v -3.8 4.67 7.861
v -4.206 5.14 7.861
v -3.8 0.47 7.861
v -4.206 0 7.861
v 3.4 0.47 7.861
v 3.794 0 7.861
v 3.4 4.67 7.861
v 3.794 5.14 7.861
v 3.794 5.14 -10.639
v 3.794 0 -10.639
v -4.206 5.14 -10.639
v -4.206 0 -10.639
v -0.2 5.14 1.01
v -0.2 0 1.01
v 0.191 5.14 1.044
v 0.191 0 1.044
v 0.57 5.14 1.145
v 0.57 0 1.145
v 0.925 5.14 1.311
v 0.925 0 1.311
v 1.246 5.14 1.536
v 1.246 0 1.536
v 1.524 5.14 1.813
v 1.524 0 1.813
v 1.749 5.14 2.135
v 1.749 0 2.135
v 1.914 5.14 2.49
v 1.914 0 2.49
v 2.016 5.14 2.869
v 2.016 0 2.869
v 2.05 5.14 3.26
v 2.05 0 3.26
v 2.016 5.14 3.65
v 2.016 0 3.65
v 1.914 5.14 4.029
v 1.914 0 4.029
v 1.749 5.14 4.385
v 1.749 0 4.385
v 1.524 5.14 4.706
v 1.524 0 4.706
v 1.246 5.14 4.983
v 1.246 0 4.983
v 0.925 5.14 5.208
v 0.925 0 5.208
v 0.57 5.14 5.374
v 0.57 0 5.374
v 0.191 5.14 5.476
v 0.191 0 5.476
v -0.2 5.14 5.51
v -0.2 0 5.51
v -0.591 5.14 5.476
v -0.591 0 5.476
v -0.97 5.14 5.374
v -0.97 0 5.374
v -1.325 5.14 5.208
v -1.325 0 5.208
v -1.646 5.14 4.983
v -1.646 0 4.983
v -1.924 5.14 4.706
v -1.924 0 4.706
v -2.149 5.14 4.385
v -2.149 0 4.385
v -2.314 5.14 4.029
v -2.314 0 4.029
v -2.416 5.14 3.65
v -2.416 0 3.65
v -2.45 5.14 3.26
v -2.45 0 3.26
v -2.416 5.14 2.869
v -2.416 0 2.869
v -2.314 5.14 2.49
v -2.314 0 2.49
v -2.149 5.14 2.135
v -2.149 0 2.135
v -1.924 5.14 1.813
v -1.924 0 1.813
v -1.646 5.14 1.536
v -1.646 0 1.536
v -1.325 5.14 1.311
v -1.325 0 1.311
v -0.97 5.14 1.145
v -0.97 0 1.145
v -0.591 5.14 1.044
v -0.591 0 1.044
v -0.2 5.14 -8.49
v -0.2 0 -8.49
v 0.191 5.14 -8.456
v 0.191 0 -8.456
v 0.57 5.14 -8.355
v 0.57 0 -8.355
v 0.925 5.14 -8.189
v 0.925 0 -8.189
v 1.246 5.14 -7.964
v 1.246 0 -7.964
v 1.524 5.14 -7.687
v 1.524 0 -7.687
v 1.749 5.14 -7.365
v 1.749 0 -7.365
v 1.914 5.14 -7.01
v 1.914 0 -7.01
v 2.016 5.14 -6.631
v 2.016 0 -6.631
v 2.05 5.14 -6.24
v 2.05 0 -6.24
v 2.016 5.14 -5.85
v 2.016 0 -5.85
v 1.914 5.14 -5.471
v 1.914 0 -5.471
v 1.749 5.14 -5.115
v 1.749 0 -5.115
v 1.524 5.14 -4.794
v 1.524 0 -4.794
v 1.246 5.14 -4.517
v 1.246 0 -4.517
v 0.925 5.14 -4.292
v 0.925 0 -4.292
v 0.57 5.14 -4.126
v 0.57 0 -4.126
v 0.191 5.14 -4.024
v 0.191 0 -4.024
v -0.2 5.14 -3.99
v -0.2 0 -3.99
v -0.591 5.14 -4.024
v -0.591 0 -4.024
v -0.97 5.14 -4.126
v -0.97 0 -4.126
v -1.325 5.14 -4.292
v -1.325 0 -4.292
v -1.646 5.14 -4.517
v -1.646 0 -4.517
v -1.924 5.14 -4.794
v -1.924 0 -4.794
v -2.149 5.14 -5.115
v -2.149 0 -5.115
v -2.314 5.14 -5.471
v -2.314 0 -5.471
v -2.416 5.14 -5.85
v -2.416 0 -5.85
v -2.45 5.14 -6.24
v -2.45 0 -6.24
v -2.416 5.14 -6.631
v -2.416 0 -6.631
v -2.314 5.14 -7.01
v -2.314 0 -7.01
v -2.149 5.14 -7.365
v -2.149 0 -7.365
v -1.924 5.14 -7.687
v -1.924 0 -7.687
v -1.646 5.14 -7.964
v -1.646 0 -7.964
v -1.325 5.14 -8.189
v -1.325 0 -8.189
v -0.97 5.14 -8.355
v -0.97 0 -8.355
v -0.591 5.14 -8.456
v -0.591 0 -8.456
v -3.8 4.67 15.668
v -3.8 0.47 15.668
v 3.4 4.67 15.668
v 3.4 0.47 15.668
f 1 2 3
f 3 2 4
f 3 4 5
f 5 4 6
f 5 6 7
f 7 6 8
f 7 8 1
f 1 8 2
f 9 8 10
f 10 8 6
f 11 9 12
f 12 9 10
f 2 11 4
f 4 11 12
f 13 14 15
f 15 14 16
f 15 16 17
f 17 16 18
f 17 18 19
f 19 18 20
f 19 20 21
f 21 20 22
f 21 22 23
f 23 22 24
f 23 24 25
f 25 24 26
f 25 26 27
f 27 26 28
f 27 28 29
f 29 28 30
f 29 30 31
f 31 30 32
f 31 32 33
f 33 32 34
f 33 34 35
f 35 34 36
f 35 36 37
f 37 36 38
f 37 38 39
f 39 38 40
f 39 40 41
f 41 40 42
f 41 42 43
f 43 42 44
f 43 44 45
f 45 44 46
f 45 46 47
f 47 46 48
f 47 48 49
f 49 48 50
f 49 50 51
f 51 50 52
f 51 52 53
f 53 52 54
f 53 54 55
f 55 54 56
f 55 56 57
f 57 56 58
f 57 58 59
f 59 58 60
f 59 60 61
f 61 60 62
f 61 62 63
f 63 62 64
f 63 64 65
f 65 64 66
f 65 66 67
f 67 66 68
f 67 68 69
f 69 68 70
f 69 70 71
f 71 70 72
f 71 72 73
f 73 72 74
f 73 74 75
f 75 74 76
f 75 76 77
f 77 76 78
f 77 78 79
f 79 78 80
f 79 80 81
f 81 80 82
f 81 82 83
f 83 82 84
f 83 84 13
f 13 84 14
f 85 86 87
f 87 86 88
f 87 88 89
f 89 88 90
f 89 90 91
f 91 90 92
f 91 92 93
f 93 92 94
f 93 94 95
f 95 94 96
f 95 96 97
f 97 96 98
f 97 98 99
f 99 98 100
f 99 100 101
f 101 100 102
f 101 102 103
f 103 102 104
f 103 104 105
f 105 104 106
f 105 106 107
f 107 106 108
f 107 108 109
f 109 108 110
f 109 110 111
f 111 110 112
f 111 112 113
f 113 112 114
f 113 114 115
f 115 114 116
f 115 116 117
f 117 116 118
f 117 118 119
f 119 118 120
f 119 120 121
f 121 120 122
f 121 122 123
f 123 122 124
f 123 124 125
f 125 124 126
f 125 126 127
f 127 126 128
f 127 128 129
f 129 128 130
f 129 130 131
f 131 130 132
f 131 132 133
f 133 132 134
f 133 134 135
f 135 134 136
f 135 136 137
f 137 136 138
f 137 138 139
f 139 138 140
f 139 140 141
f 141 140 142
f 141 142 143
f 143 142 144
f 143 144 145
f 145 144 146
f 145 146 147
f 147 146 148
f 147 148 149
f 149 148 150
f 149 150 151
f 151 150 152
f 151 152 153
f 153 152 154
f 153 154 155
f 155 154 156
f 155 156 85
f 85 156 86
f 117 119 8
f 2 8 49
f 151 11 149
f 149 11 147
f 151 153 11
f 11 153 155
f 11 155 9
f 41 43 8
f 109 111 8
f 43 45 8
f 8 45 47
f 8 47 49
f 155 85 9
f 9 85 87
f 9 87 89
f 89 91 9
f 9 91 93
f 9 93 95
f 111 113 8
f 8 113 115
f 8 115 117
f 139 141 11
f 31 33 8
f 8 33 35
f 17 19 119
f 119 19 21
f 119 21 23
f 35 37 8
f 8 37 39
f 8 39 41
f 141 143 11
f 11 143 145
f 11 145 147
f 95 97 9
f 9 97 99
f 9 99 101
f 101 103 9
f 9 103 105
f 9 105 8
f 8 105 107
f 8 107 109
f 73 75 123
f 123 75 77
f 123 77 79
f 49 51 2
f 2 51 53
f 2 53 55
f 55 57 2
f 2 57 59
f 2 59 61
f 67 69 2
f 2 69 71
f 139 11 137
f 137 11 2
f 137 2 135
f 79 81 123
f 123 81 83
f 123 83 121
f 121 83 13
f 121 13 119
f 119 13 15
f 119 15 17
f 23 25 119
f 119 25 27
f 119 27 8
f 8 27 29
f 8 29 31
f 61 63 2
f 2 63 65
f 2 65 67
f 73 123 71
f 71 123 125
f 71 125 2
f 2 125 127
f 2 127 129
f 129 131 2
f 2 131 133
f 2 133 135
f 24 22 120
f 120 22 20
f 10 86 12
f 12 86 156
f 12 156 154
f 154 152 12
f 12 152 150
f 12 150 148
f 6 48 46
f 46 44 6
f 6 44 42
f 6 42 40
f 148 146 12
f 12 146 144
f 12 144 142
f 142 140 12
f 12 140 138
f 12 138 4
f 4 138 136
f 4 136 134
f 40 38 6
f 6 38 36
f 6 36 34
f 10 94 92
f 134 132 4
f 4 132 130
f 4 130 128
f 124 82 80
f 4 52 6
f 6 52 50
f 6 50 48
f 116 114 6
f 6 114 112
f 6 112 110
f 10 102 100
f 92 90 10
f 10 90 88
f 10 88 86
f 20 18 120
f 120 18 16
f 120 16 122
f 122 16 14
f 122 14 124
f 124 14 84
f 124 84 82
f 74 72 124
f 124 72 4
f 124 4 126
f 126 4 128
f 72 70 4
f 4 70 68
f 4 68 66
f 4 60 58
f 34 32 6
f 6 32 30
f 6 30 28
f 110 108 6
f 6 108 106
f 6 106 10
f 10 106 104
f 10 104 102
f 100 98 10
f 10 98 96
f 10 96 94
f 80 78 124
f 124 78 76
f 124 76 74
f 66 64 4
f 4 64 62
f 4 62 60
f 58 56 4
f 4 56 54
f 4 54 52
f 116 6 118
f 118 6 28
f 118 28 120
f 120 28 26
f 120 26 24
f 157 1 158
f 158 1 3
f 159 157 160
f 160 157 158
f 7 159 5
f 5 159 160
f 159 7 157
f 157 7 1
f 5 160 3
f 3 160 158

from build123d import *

# Parameters (mm, degrees)
SKETCH1_R           = 2.25
BOSS_EXTRUDE1_DEPTH = 5.14
BOSS_EXTRUDE2_START = 0.47
SKETCH1_4_W         = 7.2
SKETCH1_4_H         = 7.806654437
BOSS_EXTRUDE2_DEPTH = 4.2


with BuildPart() as part:
    # Sketch1 → Boss-Extrude1 (new body)
    with BuildSketch(Plane(origin=(0, 0, 0), x_dir=(1, 0, 0), z_dir=(0, 1, 0))):
        Polygon((3.794030202, 10.638672352), (-4.205969798, 10.638672352), (-4.205969798, -7.861327648), (-3.8, -7.861327648), (3.4, -7.861327648), (3.794030202, -7.861327648), align=None)
        with Locations((-0.2, -3.25974881)):
            Circle(SKETCH1_R, mode=Mode.SUBTRACT)
        with Locations((-0.2, 6.24025119)):
            Circle(SKETCH1_R, mode=Mode.SUBTRACT)
    extrude(amount=BOSS_EXTRUDE1_DEPTH)

    # Sketch1<4> → Boss-Extrude2 (add)
    with BuildSketch(Plane(origin=(0, 0, 0), x_dir=(1, 0, 0), z_dir=(0, 1, 0)).offset(BOSS_EXTRUDE2_START)):
        with Locations((-0.2, -11.764654867)):
            Rectangle(SKETCH1_4_W, SKETCH1_4_H)
    extrude(amount=BOSS_EXTRUDE2_DEPTH)


solid = part.part
